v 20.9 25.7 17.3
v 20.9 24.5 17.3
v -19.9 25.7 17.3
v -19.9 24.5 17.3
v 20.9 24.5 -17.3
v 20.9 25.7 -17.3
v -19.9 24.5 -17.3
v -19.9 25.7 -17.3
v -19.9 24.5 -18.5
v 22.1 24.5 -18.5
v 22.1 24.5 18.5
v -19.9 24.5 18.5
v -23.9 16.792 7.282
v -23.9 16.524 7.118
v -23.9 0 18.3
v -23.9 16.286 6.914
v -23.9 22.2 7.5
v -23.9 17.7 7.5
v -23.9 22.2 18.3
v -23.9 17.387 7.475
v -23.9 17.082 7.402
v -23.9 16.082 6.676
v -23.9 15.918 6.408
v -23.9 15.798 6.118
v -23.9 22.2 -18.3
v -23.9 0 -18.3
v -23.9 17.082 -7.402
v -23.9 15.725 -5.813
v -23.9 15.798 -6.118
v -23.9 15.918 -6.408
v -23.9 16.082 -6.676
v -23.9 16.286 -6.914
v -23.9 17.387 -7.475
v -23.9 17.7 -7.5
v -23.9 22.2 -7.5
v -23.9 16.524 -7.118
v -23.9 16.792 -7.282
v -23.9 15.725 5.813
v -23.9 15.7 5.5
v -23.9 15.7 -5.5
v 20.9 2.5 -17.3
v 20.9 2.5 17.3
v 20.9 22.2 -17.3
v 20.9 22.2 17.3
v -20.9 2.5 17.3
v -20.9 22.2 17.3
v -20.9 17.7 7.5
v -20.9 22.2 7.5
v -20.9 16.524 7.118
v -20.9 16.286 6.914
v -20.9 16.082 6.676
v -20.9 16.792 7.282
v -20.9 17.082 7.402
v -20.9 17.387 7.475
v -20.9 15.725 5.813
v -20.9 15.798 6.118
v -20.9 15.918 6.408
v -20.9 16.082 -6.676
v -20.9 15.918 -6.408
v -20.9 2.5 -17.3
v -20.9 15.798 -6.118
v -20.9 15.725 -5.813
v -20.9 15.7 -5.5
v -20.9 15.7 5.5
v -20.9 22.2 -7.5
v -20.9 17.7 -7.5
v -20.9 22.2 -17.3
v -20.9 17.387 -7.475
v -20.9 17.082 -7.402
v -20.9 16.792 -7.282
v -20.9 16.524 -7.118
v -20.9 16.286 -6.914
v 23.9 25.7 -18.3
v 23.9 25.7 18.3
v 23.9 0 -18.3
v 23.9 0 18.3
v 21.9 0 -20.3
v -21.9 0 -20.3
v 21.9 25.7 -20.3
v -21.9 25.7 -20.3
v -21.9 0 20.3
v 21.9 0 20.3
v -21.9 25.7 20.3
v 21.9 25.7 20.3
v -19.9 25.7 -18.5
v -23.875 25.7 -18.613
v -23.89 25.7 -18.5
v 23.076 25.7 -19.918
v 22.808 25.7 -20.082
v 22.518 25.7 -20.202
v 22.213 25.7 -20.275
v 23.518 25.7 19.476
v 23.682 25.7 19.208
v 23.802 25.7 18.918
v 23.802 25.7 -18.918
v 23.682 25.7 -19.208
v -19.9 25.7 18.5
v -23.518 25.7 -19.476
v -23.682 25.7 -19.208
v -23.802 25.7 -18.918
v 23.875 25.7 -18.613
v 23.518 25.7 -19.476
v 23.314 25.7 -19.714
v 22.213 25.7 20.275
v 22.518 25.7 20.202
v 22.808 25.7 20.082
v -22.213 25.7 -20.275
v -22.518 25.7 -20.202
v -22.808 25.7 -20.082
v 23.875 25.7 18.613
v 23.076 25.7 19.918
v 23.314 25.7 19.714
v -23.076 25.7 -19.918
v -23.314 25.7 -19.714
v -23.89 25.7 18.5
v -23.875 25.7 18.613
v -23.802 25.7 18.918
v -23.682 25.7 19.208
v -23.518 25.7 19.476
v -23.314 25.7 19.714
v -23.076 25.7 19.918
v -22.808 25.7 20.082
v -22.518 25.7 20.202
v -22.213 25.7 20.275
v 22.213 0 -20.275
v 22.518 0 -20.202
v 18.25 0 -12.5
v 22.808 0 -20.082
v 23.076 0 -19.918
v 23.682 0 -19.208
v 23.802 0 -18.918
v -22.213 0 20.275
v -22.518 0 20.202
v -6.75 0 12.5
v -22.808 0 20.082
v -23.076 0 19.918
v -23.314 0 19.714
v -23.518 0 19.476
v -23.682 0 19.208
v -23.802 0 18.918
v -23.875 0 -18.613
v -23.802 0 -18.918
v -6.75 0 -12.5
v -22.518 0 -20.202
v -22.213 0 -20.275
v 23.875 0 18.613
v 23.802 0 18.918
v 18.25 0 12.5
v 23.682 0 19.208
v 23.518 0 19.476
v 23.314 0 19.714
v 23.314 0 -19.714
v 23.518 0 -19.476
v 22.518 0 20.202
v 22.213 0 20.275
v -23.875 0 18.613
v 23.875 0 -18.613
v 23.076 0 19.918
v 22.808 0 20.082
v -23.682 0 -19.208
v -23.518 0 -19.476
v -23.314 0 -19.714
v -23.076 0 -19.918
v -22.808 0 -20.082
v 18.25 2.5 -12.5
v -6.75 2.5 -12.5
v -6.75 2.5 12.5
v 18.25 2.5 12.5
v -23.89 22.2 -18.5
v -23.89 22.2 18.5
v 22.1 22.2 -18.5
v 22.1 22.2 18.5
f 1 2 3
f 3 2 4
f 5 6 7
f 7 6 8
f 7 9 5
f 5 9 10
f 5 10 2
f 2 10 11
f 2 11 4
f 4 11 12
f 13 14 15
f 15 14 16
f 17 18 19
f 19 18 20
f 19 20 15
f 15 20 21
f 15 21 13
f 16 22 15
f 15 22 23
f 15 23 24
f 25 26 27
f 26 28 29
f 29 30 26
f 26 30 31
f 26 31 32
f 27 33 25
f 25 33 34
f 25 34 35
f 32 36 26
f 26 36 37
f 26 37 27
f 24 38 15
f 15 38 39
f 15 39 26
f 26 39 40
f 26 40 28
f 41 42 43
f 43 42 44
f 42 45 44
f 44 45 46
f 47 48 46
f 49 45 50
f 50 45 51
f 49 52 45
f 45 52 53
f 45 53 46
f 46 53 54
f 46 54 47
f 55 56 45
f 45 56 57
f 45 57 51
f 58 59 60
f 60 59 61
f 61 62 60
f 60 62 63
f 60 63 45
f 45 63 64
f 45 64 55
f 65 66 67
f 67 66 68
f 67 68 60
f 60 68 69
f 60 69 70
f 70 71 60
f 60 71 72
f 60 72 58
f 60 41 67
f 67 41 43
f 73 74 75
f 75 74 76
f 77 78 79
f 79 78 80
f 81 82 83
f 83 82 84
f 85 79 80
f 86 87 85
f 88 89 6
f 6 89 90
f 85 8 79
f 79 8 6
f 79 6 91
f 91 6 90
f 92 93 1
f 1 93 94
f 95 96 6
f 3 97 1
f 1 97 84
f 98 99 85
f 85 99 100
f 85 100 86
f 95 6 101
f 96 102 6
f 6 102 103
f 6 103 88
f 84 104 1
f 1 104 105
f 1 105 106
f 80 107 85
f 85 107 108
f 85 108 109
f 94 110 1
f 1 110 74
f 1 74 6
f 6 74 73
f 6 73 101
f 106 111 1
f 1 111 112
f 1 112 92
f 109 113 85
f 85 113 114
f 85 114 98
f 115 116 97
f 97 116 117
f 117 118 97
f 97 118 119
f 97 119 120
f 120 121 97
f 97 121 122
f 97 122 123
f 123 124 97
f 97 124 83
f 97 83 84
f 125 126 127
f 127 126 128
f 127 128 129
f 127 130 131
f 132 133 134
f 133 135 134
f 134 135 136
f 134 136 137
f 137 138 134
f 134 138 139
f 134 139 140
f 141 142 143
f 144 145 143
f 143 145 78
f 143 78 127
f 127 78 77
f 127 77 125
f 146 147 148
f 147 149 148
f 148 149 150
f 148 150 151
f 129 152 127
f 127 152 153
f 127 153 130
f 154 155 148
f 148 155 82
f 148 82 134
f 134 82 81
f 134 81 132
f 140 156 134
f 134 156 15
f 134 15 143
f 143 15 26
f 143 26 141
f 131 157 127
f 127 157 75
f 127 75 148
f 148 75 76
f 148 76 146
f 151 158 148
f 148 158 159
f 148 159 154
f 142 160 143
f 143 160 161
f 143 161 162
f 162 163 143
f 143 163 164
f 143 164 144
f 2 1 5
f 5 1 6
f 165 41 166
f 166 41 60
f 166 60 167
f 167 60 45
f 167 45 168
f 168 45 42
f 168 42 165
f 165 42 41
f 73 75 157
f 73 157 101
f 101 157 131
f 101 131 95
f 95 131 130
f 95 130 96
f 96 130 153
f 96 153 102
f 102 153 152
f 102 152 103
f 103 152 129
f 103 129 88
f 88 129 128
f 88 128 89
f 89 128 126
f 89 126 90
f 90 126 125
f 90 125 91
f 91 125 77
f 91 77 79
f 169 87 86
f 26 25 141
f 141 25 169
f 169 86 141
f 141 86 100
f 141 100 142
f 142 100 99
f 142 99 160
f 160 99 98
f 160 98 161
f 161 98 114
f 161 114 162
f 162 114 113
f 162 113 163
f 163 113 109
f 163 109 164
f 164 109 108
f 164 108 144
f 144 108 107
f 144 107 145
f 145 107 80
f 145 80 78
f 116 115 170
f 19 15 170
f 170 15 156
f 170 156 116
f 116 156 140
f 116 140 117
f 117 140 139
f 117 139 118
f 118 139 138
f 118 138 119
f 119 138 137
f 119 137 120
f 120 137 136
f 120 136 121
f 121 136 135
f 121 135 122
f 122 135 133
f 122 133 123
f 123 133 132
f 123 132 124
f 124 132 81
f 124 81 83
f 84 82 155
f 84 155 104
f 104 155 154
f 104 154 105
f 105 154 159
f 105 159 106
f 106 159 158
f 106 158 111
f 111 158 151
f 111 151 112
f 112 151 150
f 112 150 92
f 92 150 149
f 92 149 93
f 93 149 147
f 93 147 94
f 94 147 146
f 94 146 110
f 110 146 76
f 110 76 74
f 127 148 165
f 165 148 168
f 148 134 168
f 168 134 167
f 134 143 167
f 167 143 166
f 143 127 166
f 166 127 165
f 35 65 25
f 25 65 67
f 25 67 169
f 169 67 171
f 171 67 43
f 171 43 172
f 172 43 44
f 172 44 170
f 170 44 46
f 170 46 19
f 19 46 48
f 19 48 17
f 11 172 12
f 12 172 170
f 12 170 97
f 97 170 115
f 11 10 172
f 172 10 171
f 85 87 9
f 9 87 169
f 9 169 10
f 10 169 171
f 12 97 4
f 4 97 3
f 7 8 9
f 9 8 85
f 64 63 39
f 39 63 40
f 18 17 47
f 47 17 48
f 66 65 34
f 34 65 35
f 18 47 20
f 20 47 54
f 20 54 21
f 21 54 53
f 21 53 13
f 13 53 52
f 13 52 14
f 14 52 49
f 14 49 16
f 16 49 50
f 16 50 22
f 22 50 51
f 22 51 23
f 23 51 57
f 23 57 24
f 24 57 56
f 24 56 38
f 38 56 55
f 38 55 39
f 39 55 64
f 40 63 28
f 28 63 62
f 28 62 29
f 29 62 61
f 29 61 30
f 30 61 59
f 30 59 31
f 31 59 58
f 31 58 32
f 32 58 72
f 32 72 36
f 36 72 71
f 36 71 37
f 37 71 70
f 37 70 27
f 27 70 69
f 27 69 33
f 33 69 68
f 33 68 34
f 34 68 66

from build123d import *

# Parameters (mm, degrees)
SKETCH1_W           = 47.8
SKETCH1_H           = 40.6
BOSS_EXTRUDE1_DEPTH = 25.7
SKETCH2_W           = 41.8
SKETCH2_H           = 34.6
CUT_EXTRUDE1_DEPTH  = 23.2
FILLET1_R           = 2
SKETCH3_W           = 25
SKETCH3_H           = 25
CUT_EXTRUDE2_DEPTH  = 40.006922463
CUT_EXTRUDE3_START  = 22.2
SKETCH4_W           = 47
SKETCH4_H           = 37
CUT_EXTRUDE3_DEPTH  = 2.3
SKETCH6_W           = 37
SKETCH6_H           = 3.5
CUT_EXTRUDE4_DEPTH  = 4
SKETCH7_W           = 15
SKETCH7_H           = 13
CUT_EXTRUDE5_DEPTH  = 4
FILLET2_R           = 2


with BuildPart() as part:
    # Sketch1 → Boss-Extrude1 (new body)
    with BuildSketch(Plane(origin=(0, 0, 0), x_dir=(1, 0, 0), z_dir=(0, 1, 0))):
        Rectangle(SKETCH1_W, SKETCH1_H)
    extrude(amount=BOSS_EXTRUDE1_DEPTH)

    # Sketch2 → Cut-Extrude1 (cut)
    with BuildSketch(Plane(origin=(0, 25.7, 0), x_dir=(1, 0, 0), z_dir=(0, 1, 0))):
        Rectangle(SKETCH2_W, SKETCH2_H)
    extrude(amount=-CUT_EXTRUDE1_DEPTH, mode=Mode.SUBTRACT)

    # Fillet1
    fillet1_edges = [part.edges().sort_by_distance(p)[0] for p in [
        (23.9, 12.85, 20.3),
        (-23.9, 12.85, 20.3),
        (-23.9, 12.85, -20.3),
        (23.9, 12.85, -20.3),
    ]]
    fillet(fillet1_edges, radius=FILLET1_R)

    # Sketch3 → Cut-Extrude2 (cut, through all)
    with BuildSketch(Plane(origin=(0, 2.5, 0), x_dir=(1, 0, 0), z_dir=(0, 1, 0))):
        with Locations((5.75, 0)):
            Rectangle(SKETCH3_W, SKETCH3_H)
    extrude(amount=-CUT_EXTRUDE2_DEPTH, mode=Mode.SUBTRACT)

    # Sketch4 → Cut-Extrude3 (cut)
    with BuildSketch(Plane(origin=(0, 0, 0), x_dir=(1, 0, 0), z_dir=(0, 1, 0)).offset(CUT_EXTRUDE3_START)):
        with Locations((-1.4, 0)):
            Rectangle(SKETCH4_W, SKETCH4_H)
    extrude(amount=CUT_EXTRUDE3_DEPTH, mode=Mode.SUBTRACT)

    # Sketch6 → Cut-Extrude4 (cut)
    with BuildSketch(Plane.ZY.offset(23.9)):
        with Locations((0, 25.7)):
            Rectangle(SKETCH6_W, SKETCH6_H)
    extrude(amount=-CUT_EXTRUDE4_DEPTH, mode=Mode.SUBTRACT)

    # Sketch7 → Cut-Extrude5 (cut)
    with BuildSketch(Plane.ZY.offset(23.9)):
        with Locations((0, 22.2)):
            Rectangle(SKETCH7_W, SKETCH7_H)
    extrude(amount=-CUT_EXTRUDE5_DEPTH, mode=Mode.SUBTRACT)

    # Fillet2
    fillet2_edges = [part.edges().sort_by_distance(p)[0] for p in [
        (-22.4, 15.7, 7.5),
        (-22.4, 15.7, -7.5),
    ]]
    fillet(fillet2_edges, radius=FILLET2_R)


solid = part.part
